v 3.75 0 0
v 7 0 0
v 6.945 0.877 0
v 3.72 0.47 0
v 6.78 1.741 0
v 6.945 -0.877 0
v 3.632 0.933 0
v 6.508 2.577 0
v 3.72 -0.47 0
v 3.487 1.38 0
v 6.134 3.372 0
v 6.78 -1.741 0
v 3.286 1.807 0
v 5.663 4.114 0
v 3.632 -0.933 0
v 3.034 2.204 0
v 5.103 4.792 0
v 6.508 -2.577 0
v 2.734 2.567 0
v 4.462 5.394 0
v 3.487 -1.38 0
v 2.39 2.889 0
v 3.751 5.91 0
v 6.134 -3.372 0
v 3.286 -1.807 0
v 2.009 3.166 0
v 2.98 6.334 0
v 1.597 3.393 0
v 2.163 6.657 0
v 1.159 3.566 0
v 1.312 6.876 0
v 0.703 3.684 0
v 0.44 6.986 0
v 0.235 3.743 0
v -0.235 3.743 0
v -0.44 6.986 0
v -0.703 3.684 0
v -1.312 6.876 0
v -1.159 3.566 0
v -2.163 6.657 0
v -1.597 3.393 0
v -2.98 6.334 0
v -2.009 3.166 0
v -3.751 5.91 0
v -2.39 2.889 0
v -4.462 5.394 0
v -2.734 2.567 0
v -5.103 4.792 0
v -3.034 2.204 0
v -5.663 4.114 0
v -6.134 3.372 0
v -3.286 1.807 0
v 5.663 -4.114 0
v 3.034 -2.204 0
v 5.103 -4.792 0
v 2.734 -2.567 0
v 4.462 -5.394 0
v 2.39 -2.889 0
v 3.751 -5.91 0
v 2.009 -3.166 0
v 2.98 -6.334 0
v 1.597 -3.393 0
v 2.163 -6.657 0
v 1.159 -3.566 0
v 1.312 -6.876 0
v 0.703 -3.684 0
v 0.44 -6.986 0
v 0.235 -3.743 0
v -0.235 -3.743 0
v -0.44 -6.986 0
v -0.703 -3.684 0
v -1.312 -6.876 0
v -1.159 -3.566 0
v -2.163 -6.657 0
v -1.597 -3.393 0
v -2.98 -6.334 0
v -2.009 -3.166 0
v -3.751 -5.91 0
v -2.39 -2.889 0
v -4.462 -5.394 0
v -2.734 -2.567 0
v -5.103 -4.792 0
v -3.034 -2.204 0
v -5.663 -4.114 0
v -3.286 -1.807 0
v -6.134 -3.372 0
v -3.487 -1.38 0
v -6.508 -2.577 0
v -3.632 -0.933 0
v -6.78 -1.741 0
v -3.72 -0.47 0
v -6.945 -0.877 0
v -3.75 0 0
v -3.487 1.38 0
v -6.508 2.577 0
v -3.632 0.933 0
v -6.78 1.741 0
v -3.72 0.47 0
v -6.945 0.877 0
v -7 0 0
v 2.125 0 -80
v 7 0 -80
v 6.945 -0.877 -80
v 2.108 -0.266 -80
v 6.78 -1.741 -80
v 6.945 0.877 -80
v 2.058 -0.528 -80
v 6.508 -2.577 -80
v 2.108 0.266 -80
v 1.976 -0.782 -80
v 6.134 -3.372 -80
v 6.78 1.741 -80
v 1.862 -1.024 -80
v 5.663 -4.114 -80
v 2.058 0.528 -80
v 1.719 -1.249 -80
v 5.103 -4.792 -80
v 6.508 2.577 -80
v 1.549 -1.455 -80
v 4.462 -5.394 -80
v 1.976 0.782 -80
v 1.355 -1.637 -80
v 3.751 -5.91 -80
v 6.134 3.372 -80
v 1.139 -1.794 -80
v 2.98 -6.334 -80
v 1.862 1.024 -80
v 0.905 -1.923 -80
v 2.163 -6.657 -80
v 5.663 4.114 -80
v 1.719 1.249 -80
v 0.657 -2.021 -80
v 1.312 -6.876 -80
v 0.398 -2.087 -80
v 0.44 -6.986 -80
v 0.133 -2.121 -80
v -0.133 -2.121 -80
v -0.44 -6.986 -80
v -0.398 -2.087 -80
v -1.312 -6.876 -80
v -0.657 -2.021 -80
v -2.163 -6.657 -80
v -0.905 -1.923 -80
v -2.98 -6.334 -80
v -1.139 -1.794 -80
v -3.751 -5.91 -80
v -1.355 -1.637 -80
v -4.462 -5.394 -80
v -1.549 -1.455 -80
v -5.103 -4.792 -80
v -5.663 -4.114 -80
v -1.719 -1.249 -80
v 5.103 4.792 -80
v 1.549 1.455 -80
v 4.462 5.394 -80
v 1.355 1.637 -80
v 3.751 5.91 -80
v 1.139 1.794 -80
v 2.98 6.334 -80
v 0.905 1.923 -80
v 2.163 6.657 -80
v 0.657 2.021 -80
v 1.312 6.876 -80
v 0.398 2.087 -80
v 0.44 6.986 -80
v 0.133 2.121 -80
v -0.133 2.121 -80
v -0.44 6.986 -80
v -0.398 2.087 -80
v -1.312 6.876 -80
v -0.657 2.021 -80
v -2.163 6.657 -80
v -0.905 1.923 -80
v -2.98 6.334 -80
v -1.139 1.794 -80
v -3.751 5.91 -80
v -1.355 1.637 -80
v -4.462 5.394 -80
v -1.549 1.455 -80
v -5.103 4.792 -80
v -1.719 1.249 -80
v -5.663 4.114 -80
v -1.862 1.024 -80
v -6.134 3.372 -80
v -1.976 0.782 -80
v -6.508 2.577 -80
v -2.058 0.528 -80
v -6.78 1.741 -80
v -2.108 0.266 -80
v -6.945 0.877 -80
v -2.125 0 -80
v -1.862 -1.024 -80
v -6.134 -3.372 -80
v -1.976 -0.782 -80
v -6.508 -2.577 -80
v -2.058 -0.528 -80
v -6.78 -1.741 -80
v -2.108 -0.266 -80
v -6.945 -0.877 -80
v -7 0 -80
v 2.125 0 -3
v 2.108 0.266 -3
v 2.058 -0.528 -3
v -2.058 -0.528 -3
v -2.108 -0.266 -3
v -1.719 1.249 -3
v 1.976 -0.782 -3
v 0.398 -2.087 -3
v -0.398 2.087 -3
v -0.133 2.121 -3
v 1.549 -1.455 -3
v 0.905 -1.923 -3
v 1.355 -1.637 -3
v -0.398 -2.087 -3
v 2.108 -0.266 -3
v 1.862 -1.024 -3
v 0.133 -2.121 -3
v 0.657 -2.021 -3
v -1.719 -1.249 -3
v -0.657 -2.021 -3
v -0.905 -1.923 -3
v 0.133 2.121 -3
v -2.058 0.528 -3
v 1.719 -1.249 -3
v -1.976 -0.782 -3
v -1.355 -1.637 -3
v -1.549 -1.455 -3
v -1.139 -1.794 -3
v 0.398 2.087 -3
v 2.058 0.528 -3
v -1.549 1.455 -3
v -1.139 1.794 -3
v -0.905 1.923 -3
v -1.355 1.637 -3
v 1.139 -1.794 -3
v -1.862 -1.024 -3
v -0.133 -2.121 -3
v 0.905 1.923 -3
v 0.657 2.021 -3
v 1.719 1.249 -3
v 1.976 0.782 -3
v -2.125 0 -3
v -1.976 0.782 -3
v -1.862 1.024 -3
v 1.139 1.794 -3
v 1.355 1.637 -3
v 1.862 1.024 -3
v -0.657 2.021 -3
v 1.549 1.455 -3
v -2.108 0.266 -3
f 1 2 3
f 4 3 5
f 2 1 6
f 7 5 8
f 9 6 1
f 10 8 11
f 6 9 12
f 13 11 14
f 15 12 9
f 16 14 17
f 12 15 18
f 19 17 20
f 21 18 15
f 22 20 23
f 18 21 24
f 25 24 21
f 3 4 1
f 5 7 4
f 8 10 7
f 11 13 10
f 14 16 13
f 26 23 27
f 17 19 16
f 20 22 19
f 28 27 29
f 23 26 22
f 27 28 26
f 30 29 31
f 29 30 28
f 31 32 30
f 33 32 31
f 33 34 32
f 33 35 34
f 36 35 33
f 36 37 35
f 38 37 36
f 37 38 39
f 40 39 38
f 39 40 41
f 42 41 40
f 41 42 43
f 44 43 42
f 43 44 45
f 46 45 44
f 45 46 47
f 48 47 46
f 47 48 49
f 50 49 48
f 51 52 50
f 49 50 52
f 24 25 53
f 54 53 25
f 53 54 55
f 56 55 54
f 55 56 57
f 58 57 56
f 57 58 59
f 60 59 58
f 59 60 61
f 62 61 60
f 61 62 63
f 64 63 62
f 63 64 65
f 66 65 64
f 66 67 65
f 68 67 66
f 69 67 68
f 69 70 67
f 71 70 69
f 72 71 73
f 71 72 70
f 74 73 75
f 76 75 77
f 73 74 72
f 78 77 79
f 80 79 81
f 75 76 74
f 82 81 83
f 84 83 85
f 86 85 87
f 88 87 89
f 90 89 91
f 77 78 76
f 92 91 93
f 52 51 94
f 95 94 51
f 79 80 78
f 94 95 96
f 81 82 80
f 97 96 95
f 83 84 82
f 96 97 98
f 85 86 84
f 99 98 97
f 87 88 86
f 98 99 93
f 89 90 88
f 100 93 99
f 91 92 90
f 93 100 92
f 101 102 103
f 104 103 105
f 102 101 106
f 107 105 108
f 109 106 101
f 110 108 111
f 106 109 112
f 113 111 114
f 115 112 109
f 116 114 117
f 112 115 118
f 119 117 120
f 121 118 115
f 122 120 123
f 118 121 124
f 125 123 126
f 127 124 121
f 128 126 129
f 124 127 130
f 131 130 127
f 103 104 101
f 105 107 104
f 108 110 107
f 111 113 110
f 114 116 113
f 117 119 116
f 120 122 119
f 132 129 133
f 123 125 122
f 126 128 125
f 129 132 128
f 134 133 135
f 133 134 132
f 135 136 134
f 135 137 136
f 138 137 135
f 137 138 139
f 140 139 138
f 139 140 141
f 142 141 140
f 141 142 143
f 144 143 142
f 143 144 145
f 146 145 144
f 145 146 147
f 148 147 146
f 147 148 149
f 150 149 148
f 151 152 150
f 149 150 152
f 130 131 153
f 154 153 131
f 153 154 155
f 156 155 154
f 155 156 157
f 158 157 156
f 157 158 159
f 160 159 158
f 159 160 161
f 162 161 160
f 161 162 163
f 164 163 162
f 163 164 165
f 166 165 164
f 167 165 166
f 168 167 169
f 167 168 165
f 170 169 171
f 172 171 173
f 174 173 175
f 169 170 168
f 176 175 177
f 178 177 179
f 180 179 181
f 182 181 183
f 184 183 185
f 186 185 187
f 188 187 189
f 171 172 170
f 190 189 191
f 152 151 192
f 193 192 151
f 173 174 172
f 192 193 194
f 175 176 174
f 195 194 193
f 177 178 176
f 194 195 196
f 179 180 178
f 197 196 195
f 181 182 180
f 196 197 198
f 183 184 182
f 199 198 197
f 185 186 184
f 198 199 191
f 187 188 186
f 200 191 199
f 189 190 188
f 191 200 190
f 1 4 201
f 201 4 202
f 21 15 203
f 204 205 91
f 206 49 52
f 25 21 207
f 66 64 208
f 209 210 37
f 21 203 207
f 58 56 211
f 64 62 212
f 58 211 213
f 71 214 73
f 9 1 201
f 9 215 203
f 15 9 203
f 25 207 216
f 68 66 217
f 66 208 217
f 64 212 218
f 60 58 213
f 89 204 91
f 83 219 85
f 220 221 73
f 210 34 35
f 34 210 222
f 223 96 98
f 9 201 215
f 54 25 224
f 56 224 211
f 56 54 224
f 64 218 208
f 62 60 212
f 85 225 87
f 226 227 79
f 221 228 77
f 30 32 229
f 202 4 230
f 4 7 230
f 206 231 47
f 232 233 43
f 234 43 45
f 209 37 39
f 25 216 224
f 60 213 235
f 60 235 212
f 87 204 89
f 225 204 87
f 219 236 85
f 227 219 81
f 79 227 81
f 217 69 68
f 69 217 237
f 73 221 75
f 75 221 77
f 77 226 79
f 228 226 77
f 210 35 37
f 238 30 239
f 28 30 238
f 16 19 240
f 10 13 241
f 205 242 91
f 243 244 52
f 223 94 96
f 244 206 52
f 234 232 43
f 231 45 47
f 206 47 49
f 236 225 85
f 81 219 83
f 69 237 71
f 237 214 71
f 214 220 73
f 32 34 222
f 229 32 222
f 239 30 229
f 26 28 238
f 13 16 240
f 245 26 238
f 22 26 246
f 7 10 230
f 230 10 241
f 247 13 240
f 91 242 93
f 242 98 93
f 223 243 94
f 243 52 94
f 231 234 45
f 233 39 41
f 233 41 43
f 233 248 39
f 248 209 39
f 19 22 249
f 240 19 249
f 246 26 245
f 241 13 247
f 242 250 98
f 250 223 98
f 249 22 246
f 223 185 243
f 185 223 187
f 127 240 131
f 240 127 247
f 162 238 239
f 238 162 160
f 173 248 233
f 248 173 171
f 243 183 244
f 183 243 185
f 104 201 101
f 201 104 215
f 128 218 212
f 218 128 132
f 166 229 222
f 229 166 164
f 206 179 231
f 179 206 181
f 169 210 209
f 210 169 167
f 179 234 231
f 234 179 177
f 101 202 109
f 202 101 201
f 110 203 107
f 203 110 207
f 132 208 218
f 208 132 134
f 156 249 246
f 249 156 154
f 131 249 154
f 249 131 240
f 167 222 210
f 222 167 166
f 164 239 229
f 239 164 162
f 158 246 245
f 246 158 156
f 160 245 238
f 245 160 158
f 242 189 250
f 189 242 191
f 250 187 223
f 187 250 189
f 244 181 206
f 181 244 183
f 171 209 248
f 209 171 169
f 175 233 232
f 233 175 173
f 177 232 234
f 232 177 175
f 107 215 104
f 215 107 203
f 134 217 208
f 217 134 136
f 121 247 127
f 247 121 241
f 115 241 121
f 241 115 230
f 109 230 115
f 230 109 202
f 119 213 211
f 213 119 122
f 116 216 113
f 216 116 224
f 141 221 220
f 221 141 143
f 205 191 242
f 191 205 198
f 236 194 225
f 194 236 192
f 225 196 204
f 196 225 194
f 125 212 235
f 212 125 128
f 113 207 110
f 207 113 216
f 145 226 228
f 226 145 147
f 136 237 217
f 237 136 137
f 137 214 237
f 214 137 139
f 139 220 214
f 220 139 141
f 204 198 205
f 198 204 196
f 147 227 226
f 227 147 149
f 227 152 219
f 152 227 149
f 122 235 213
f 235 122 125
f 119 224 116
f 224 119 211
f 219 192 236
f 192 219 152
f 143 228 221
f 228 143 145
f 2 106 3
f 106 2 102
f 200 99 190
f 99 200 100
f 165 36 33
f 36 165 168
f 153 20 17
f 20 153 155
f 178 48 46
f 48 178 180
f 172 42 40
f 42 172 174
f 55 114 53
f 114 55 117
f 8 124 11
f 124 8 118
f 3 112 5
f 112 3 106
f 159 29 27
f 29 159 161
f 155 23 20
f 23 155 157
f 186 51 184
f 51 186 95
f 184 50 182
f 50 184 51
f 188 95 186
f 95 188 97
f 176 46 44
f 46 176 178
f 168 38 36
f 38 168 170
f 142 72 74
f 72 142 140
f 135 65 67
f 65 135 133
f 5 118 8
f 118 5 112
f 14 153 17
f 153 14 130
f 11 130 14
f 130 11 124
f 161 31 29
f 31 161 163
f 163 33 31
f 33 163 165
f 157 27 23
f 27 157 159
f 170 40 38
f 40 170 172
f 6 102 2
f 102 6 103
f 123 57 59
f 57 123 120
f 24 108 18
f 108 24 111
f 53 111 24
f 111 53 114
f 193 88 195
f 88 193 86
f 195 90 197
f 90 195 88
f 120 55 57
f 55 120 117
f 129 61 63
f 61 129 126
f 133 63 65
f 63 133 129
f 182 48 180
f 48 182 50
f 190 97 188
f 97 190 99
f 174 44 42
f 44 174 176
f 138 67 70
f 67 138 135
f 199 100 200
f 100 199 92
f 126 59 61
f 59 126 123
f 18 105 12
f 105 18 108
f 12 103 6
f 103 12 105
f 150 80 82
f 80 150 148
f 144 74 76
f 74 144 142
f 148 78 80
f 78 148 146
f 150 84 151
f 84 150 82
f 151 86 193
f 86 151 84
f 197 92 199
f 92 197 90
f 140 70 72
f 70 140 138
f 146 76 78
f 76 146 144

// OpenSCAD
$fn = 50;


difference() {
	union() {
		translate(v = [0, 0, -80.0000000000]) {
			cylinder(h = 80, r = 7.0000000000);
		}
		cylinder(h = 0, r = 16.0000000000);
	}
	union() {
		translate(v = [0, 0, 0]) {
			rotate(a = [0, 0, 0]) {
				difference() {
					union() {
						#translate(v = [0, 0, -80.0000000000]) {
							cylinder(h = 80, r = 2.0000000000);
						}
						#translate(v = [0, 0, -3]) {
							cylinder(h = 3, r = 7.0000000000, r1 = 2.1250000000, r2 = 3.7500000000);
						}
						#translate(v = [0, 0, -80.0000000000]) {
							cylinder(h = 80, r = 2.1250000000);
						}
						#translate(v = [0, 0, -80.0000000000]) {
							cylinder(h = 80, r = 2.0000000000);
						}
					}
					union();
				}
			}
		}
	}
}
